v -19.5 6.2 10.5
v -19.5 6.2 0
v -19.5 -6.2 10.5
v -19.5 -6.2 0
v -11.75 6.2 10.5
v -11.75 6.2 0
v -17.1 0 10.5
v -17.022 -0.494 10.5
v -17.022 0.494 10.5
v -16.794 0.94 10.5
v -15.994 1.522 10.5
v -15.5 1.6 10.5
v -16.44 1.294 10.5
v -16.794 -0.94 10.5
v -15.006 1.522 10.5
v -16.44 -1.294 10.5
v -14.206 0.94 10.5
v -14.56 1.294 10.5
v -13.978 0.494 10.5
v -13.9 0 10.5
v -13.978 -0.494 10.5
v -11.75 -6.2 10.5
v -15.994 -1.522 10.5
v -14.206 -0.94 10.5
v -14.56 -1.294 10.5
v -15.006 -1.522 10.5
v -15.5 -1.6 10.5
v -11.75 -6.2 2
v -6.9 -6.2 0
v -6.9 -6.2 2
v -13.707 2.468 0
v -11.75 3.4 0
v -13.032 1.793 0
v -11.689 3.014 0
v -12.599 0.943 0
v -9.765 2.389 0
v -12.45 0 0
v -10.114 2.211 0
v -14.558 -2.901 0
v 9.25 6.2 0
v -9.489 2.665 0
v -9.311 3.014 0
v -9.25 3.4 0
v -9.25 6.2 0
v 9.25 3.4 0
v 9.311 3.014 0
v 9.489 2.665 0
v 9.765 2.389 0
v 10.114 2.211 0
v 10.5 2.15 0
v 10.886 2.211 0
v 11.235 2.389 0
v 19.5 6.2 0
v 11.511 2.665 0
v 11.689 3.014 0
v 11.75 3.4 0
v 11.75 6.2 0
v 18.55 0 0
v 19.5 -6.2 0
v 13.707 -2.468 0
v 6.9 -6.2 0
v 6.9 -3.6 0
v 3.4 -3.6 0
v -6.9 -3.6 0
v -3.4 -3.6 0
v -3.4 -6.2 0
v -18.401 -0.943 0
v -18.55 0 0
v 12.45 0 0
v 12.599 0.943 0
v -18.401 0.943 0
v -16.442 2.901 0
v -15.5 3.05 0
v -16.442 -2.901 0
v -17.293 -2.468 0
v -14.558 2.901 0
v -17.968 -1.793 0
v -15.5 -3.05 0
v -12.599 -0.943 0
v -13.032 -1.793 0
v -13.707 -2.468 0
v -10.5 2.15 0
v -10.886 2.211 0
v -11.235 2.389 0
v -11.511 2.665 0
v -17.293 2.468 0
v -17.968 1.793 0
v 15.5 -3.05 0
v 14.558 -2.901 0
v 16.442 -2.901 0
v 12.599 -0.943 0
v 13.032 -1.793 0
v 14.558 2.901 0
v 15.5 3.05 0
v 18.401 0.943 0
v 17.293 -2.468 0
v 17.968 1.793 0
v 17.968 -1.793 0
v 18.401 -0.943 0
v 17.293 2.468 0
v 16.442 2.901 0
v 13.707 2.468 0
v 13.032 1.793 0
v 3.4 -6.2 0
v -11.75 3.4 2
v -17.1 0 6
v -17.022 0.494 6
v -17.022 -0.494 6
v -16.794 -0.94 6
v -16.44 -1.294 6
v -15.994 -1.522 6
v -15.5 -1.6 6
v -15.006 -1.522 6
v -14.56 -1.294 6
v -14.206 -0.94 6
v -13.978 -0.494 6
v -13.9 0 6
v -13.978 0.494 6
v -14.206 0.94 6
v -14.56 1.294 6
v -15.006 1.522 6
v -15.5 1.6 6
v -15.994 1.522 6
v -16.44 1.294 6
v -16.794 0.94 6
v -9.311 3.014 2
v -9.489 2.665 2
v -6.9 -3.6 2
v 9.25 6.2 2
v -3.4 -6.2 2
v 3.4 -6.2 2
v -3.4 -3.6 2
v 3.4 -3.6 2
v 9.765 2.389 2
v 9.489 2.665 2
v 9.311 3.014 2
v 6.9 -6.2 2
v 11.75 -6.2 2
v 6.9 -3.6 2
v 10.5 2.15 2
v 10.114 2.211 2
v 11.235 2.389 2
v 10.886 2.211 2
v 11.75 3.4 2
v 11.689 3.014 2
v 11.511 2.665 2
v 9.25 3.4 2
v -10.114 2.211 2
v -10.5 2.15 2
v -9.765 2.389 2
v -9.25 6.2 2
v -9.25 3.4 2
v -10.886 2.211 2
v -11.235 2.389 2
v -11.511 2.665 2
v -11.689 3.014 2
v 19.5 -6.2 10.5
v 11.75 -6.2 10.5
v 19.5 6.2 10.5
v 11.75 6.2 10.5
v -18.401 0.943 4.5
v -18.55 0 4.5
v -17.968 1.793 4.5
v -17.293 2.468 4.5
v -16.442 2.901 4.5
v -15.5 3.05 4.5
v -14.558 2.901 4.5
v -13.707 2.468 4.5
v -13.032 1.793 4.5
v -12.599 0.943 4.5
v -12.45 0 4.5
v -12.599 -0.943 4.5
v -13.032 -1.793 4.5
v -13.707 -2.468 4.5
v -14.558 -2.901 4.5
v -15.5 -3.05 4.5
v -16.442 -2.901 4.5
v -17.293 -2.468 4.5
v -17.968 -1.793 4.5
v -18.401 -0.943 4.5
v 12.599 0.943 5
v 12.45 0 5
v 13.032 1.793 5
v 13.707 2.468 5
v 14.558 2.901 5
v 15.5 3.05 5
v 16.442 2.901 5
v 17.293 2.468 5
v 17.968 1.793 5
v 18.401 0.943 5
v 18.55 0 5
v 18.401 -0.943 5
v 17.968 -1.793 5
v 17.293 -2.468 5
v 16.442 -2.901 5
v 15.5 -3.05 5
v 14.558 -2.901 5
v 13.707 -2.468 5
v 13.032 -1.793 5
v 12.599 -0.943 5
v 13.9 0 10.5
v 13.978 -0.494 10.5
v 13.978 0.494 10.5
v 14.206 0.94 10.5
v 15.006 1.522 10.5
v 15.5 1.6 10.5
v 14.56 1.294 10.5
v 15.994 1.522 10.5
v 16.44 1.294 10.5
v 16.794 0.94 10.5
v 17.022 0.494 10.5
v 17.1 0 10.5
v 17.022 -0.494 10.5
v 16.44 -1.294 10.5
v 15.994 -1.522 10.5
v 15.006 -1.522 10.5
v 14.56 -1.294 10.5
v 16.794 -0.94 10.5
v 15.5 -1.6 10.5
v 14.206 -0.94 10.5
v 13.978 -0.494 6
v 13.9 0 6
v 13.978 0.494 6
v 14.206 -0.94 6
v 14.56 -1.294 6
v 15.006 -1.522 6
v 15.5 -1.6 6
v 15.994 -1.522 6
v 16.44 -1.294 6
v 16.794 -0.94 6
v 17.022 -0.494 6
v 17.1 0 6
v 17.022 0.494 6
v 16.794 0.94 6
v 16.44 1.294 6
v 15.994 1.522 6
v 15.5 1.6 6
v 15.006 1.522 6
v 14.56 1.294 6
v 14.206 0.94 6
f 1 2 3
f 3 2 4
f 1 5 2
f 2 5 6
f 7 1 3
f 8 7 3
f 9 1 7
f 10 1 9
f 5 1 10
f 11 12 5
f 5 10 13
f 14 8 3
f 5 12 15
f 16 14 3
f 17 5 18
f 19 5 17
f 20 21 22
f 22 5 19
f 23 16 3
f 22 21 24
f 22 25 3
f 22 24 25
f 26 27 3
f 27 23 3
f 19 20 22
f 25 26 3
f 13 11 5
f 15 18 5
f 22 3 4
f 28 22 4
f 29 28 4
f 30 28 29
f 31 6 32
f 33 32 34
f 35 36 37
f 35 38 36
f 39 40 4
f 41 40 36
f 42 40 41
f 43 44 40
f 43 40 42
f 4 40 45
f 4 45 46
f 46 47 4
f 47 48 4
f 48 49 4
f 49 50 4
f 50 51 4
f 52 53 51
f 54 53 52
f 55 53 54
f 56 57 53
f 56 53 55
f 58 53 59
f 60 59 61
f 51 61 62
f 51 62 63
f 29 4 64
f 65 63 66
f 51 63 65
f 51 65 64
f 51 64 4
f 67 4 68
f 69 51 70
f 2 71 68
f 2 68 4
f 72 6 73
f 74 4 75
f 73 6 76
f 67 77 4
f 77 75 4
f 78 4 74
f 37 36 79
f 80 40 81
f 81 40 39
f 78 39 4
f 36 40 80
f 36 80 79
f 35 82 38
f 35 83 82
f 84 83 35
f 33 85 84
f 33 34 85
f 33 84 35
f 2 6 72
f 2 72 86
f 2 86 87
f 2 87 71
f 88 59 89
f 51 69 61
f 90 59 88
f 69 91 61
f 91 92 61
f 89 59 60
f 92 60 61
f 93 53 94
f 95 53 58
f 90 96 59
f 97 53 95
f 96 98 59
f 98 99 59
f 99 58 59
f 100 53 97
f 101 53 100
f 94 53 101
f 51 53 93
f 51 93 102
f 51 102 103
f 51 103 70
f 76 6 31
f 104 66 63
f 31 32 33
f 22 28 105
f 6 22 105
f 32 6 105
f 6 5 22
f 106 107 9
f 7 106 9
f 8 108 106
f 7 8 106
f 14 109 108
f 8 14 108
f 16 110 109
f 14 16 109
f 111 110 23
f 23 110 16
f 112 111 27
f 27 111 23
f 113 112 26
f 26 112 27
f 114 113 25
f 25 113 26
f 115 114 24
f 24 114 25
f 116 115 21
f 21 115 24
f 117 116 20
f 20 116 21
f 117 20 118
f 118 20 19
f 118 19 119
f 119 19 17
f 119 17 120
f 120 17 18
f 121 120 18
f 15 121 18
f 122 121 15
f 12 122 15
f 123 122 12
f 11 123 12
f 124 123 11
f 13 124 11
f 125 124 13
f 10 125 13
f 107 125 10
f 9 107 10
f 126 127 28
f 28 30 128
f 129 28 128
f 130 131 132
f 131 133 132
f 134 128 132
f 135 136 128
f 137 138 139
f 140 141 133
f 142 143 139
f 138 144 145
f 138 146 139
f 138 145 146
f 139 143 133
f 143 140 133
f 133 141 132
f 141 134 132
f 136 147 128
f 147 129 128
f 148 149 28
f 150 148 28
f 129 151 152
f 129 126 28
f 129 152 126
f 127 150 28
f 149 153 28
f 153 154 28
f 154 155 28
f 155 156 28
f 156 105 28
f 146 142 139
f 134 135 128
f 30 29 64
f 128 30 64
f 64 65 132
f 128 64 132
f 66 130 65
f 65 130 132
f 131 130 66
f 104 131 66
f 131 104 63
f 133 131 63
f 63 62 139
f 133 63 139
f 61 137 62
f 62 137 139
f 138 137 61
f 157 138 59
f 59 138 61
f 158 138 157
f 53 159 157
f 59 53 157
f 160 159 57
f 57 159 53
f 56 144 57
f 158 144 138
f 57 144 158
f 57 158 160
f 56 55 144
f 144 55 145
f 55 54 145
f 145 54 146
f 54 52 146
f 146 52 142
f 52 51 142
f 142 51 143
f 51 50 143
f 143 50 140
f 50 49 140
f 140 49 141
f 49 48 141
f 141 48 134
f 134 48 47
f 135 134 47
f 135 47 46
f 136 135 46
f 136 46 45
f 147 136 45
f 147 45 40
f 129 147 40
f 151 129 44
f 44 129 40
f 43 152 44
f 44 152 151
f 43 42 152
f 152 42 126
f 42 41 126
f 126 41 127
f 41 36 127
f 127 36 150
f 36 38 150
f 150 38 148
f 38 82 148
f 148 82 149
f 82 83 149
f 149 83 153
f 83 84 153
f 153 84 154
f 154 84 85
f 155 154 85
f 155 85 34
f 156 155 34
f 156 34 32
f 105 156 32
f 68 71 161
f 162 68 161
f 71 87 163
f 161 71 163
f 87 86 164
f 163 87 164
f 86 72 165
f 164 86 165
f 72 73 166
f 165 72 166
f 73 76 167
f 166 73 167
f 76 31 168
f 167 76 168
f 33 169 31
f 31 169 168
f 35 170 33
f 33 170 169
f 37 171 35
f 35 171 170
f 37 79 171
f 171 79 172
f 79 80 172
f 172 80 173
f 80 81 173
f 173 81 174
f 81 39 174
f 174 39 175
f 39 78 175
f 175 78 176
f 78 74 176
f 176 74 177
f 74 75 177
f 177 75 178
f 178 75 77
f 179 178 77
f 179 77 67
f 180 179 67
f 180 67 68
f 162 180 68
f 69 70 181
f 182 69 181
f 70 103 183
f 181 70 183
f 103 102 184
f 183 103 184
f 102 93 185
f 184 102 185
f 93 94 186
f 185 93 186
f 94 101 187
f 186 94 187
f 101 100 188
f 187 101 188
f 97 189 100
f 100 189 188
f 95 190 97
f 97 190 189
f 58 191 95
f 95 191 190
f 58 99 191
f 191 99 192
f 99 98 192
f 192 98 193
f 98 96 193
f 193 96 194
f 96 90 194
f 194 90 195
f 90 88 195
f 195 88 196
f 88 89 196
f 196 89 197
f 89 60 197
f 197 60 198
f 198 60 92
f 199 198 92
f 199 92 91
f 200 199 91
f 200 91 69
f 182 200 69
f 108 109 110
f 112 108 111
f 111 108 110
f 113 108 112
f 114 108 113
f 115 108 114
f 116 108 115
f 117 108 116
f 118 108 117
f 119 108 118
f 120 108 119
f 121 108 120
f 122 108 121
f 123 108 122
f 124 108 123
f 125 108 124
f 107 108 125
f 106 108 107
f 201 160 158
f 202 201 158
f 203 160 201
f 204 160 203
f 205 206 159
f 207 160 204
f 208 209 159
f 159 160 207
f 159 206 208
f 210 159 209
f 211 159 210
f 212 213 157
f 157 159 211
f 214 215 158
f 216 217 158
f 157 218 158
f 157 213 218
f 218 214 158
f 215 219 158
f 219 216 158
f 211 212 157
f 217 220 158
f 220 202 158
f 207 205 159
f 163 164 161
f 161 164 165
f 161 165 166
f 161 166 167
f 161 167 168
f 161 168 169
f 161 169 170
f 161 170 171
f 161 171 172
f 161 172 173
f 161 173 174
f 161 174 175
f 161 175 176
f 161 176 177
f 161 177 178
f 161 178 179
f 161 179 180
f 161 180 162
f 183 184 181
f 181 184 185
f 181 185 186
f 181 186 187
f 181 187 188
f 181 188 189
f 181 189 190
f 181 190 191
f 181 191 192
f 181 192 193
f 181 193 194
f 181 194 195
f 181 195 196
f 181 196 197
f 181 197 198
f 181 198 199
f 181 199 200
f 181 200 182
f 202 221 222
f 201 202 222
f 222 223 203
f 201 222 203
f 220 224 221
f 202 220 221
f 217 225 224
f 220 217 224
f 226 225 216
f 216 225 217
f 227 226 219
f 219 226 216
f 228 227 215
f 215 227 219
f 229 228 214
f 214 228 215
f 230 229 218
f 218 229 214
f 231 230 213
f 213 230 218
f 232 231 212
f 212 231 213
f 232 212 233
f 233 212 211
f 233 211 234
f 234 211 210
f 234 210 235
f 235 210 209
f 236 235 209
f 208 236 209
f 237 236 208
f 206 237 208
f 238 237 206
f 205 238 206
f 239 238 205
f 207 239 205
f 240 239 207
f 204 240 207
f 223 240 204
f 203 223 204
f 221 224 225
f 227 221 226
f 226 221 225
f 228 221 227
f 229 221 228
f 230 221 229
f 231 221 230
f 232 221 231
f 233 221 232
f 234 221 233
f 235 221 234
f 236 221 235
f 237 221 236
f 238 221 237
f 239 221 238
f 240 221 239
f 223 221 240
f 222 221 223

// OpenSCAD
x=39;
x2=23.5;//25;
y=12.4;//10;
z=31;
h=2;
h2=8.5;//10;
x3=3.5;
dw=12.6;
y3=2.6;
z2=h+h2;
d1=3.2;
d2=2.5;
y4=7;
d3=6.1;
z3=5;
delta=0.5;
$fn=20;

translate([0,0,z2])rotate([180,0,0])
difference() {
		translate([0,0,h/2])difference() {
		union() {
			translate([0,0,h2/2])cube([x,y,z2],true);
			translate([0,0,h2/2])cube([x2+2*h,y,z2],true);
		}
		translate([0,0,(h2-h)/2-.1])cube([x2,y+1,h2+.2],true);
	}
	translate([-z/2,0,-0.5])
{cylinder(z2-z3-0.5,r=d1/2);
translate([0,0,z2-4])cylinder(h=z3,r=d3/2);
}
	translate([z/2,0,-0.5])
{cylinder(z2-z3-0.5,r=d1/2);translate([0,0,z2+0.5-z3])cylinder(13,r=d3/2);}
translate([x/2-dw-x3,y/2-y3,0])cube([x3,y3+delta,z2+delta]);
translate([-x/2+dw,y/2-y3,0])cube([x3,y3+delta,z2+delta]);
translate([x2/2-d2/2,y/2-y3-y4,0])
{cylinder(r=d2/2,h=z2+delta);translate([0,-d2,z2/2])cube([d2,2*d2,z2+delta],true);}
translate([-x2/2+d2/2,y/2-y3-y4,0])
{cylinder(r=d2/2,h=z2+delta);translate([0,-d2,z2/2])cube([d2,2*d2,z2+delta],true);}
}
